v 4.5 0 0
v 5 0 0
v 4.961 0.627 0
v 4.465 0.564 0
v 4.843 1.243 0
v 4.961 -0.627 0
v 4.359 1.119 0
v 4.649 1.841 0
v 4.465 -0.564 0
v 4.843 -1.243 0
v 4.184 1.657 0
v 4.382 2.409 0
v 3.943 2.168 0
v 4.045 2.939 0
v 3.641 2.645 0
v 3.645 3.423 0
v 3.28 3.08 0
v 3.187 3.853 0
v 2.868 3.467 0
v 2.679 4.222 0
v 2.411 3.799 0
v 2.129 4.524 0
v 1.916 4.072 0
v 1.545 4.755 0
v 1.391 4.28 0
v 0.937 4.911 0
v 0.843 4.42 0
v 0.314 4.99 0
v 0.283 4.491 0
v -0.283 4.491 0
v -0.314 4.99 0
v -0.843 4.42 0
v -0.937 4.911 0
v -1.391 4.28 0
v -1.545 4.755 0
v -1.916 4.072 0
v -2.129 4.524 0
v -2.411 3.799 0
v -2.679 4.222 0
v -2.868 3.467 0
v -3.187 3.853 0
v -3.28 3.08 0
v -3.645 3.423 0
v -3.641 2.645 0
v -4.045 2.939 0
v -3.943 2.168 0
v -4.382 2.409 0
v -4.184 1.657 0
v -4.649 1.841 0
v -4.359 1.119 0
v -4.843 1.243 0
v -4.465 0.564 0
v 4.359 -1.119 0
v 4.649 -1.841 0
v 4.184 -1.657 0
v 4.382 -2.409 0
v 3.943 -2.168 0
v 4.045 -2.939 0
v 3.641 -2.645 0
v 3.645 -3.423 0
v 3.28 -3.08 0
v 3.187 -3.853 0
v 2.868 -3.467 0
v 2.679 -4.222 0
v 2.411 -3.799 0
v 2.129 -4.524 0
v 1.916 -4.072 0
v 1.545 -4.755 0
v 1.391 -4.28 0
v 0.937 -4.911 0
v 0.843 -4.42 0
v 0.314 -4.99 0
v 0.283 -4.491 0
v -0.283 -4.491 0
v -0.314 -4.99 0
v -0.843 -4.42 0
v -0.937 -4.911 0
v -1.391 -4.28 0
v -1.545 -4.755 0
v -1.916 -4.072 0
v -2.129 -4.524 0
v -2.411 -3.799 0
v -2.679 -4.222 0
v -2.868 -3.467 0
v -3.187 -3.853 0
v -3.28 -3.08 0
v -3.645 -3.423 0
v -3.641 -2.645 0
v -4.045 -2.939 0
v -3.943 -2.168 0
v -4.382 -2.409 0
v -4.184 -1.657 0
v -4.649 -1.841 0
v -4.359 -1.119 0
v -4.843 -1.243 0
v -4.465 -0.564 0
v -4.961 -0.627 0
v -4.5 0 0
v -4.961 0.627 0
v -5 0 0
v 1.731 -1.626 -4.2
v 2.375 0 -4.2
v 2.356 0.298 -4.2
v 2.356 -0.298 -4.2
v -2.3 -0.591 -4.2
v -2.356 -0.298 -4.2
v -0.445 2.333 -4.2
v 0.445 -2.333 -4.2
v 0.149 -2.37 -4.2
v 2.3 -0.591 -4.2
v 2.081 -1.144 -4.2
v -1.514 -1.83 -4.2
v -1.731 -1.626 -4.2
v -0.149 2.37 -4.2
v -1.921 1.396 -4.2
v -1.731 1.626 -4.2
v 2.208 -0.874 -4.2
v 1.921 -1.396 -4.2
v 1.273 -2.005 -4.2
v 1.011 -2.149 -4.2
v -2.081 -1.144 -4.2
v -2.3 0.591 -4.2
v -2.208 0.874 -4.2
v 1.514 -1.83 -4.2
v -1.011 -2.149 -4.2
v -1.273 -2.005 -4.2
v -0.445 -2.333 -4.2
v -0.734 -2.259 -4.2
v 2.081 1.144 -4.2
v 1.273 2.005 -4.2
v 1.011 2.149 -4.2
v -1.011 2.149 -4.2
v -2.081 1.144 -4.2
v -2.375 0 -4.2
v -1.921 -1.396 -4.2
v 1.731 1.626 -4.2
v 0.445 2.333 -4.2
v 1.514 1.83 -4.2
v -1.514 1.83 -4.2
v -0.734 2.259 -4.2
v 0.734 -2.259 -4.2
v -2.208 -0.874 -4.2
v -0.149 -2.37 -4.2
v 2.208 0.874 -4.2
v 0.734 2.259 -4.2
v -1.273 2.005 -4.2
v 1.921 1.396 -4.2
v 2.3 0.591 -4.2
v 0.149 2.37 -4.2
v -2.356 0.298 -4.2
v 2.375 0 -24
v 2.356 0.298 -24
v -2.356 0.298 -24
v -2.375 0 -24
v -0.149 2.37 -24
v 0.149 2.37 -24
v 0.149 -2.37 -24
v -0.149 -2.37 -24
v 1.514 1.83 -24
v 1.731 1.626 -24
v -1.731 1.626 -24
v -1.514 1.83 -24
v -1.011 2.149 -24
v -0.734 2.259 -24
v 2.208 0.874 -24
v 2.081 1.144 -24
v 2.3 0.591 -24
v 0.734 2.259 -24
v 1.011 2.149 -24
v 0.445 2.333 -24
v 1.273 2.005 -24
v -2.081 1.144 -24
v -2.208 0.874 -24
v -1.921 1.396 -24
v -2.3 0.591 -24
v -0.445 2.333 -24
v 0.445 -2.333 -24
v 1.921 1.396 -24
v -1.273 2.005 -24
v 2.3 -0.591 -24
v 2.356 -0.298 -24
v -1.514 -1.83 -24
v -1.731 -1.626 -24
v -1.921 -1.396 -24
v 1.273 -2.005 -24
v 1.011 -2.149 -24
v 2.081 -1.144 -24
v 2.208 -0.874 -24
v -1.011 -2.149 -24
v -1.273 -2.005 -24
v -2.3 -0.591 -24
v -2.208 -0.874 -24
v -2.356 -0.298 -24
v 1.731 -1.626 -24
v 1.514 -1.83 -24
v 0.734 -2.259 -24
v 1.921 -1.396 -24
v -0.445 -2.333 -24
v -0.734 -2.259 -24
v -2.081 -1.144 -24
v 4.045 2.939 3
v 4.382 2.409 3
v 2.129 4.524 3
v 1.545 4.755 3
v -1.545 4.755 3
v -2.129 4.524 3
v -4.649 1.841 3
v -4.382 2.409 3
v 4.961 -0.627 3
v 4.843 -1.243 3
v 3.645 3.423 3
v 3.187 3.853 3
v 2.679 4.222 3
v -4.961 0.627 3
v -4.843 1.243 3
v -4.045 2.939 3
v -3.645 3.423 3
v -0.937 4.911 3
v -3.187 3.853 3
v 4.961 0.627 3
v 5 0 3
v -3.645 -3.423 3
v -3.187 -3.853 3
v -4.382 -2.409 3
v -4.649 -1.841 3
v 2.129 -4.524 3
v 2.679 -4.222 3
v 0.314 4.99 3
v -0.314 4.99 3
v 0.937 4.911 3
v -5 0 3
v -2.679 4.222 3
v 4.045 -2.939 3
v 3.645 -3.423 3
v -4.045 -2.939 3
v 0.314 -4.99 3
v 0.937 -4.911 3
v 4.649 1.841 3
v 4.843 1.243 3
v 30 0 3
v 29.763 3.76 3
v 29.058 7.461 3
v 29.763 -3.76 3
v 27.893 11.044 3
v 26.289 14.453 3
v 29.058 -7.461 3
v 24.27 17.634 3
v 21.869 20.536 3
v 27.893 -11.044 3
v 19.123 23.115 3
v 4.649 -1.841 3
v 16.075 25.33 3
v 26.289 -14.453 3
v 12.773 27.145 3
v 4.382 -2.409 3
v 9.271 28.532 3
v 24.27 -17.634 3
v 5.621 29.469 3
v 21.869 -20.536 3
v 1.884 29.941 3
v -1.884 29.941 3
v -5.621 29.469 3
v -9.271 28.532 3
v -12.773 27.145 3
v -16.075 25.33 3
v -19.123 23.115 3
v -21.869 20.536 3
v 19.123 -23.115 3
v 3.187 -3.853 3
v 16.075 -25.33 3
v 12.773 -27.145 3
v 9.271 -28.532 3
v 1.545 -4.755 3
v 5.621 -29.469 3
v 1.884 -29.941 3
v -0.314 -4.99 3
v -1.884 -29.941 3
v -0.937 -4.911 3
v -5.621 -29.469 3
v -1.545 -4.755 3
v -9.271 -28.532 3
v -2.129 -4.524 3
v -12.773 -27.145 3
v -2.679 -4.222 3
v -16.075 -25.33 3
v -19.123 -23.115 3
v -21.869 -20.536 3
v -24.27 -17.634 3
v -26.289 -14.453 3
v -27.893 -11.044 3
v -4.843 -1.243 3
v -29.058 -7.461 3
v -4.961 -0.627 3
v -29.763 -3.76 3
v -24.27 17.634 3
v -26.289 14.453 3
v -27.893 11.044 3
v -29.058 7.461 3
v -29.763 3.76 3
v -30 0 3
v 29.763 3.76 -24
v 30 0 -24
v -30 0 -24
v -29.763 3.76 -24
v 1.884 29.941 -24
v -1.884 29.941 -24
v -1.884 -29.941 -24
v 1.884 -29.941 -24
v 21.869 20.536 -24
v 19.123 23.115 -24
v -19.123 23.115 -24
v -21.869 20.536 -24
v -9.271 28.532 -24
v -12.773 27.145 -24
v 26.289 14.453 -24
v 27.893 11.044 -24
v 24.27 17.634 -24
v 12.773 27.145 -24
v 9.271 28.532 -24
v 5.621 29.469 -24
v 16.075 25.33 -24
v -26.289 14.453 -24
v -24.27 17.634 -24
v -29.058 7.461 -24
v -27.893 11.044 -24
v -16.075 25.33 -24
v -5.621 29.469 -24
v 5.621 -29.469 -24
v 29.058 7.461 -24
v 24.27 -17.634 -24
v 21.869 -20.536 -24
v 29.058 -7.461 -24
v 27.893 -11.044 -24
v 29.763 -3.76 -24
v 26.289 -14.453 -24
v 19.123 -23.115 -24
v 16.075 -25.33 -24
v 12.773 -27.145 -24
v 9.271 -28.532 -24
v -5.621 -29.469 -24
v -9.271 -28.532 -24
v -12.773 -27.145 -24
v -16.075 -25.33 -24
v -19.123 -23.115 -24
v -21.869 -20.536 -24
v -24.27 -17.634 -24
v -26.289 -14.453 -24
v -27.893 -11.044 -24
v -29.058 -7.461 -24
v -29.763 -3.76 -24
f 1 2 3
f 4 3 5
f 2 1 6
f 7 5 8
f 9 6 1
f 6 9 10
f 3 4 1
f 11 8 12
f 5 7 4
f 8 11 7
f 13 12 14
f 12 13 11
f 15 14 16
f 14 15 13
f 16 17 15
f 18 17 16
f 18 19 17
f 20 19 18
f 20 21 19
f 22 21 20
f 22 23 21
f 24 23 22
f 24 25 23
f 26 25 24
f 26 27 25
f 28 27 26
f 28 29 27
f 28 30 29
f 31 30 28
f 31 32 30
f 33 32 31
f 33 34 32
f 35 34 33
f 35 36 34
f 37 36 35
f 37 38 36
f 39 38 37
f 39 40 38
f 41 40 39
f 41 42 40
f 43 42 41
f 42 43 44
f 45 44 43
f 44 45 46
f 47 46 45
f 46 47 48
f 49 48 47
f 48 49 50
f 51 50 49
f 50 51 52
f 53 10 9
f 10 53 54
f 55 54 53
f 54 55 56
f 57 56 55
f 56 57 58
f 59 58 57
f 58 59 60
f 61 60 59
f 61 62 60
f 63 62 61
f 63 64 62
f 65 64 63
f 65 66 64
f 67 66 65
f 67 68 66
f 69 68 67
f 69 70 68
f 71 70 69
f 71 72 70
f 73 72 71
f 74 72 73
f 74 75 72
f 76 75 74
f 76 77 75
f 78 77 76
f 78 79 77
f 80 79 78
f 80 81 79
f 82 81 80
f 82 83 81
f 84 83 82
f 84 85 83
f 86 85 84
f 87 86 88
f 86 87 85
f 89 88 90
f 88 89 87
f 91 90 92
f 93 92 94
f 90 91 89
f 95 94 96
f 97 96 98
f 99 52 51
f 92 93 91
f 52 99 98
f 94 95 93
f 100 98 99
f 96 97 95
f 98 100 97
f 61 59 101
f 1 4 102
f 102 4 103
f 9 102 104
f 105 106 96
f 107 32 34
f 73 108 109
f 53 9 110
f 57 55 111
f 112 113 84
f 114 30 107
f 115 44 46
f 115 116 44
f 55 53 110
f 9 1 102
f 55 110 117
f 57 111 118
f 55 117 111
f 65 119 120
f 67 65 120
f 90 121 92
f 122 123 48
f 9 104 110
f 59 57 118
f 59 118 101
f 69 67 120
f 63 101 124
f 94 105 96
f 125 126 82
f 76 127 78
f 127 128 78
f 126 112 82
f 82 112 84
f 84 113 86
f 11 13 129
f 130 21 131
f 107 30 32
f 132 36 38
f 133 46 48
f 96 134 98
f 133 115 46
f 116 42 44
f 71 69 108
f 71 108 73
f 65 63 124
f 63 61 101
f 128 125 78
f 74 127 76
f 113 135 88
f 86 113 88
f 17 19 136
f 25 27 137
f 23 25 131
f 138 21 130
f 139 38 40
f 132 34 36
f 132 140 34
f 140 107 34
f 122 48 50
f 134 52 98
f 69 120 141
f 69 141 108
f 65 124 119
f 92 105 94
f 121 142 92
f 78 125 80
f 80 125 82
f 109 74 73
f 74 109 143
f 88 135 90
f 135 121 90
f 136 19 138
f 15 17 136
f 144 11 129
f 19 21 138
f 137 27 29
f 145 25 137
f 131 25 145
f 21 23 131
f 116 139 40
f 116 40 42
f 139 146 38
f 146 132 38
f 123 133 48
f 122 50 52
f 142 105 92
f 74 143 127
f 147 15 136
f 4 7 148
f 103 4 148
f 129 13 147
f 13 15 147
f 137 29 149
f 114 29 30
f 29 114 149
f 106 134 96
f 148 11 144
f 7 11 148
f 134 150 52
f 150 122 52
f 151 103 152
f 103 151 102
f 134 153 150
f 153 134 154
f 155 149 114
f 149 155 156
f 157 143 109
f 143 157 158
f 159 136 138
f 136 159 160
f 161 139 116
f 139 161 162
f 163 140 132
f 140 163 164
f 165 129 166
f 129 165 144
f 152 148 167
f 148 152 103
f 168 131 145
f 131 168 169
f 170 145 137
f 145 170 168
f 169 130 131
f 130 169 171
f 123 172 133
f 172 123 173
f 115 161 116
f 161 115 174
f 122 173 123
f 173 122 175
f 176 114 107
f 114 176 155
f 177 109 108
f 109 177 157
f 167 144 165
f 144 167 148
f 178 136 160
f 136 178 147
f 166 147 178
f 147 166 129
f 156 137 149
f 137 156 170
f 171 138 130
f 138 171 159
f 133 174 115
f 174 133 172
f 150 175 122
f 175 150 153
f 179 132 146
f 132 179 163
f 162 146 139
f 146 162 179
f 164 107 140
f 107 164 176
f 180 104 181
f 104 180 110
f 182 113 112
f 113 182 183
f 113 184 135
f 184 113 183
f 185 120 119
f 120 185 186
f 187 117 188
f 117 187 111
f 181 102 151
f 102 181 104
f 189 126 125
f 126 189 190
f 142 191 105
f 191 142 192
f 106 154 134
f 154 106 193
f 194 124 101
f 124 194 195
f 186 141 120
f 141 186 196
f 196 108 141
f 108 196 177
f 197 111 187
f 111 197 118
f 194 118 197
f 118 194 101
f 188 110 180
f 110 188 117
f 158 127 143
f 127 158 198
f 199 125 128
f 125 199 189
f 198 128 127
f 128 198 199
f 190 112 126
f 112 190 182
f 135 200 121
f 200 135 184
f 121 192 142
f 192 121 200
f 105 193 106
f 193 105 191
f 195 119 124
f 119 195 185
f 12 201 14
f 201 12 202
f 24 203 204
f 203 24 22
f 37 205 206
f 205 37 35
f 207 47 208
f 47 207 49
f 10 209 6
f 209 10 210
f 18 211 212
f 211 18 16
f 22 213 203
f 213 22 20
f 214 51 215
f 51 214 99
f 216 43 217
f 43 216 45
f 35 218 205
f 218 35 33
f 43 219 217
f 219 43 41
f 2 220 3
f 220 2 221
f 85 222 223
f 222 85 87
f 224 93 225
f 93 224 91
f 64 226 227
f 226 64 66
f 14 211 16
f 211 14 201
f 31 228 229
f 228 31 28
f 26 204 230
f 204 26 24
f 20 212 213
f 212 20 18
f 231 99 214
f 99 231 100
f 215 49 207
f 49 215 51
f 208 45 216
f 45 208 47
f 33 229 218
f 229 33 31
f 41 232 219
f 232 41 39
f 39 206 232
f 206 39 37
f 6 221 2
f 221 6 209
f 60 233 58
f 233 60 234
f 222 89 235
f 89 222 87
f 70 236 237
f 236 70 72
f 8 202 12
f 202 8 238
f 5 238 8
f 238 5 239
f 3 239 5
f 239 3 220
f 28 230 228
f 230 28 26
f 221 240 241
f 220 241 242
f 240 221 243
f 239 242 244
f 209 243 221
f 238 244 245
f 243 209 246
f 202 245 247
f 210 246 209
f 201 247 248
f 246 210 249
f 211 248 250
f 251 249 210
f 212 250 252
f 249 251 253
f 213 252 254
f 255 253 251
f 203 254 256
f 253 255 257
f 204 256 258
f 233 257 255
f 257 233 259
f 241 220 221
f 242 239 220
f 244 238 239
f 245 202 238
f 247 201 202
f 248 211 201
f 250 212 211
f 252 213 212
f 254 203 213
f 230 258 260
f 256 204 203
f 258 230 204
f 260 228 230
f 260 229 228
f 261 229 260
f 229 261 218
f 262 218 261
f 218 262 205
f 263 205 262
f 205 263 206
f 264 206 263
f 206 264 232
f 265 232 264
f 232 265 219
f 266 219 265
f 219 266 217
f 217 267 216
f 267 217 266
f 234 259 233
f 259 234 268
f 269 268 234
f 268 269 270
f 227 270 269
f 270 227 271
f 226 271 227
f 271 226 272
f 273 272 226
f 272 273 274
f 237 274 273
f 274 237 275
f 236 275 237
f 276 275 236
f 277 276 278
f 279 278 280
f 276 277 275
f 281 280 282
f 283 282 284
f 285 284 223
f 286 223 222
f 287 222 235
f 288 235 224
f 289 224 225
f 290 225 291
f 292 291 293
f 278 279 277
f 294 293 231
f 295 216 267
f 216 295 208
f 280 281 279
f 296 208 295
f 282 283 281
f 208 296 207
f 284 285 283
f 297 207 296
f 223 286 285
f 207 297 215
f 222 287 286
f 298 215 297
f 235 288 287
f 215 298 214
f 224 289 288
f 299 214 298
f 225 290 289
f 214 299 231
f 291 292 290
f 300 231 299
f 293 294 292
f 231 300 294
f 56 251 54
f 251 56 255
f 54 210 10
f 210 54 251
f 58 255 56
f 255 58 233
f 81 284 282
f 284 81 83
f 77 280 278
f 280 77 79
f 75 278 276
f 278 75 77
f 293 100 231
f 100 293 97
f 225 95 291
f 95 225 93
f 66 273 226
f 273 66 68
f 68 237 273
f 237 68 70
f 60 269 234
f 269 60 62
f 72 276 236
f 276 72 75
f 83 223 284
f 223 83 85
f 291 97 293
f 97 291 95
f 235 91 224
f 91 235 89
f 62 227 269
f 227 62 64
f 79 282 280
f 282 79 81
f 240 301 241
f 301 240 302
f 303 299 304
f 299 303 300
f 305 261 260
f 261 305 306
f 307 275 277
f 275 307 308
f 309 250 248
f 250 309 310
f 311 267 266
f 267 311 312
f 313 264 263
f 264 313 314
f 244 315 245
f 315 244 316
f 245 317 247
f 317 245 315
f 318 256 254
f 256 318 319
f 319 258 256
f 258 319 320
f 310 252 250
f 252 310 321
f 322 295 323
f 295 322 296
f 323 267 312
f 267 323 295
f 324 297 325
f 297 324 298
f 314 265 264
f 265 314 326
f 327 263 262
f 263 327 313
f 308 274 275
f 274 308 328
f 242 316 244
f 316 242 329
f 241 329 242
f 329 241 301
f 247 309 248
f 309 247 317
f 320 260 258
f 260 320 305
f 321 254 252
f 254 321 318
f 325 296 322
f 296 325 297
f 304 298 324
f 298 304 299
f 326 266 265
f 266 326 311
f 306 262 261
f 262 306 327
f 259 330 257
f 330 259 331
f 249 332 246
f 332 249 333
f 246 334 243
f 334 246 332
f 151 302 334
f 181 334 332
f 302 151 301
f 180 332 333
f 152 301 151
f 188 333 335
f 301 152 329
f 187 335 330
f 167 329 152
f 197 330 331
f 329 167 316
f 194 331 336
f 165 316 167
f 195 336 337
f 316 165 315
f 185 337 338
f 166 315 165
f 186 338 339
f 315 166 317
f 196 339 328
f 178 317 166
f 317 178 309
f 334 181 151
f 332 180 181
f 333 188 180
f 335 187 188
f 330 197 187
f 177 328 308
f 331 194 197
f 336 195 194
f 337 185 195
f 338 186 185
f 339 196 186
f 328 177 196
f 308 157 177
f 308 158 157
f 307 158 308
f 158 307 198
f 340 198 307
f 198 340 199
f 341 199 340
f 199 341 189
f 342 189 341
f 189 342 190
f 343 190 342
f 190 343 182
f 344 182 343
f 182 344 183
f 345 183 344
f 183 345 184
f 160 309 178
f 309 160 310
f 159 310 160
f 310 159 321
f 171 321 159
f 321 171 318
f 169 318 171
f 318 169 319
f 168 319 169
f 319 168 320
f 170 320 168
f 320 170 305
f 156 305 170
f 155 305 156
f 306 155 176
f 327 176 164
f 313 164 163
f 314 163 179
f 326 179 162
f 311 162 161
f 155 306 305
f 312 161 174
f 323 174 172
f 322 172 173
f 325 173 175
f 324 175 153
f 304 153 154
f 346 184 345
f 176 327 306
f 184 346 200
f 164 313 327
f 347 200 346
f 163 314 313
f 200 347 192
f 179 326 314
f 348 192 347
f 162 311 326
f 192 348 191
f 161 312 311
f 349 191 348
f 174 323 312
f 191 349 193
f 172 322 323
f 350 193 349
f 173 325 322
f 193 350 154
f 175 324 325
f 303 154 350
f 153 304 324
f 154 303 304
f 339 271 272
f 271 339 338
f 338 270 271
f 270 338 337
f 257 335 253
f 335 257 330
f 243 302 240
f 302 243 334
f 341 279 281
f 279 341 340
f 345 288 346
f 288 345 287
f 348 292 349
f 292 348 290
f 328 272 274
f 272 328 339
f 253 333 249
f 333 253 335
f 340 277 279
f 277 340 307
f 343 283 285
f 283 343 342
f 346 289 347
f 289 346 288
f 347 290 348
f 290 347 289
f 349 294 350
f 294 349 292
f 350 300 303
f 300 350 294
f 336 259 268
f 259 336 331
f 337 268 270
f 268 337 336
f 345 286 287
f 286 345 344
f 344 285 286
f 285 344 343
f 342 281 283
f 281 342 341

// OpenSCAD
$fn = 50;

difference() {
	union() {
		translate(v = [0, 0, -24.0]) {
			cylinder(h = 27, r = 30.0);
		}
	}
	union() {
		translate(v = [0, 0, 0]) {
			rotate(a = [0, 0, 0]) {
				difference() {
					union() {
						translate(v = [0, 0, -27.0]) {
							cylinder(h = 27, r = 2.25);
						}
						translate(v = [0, 0, -4.2]) {
							cylinder(h = 4.2, r1 = 2.375, r2 = 4.5);
						}
						translate(v = [0, 0, -27.0]) {
							cylinder(h = 27, r = 2.375);
						}
						translate(v = [0, 0, -27.0]) {
							cylinder(h = 27, r = 2.25);
						}
					}
					union();
				}
			}
		}
		#cylinder(h = 3, r = 5.0);
	}
}
